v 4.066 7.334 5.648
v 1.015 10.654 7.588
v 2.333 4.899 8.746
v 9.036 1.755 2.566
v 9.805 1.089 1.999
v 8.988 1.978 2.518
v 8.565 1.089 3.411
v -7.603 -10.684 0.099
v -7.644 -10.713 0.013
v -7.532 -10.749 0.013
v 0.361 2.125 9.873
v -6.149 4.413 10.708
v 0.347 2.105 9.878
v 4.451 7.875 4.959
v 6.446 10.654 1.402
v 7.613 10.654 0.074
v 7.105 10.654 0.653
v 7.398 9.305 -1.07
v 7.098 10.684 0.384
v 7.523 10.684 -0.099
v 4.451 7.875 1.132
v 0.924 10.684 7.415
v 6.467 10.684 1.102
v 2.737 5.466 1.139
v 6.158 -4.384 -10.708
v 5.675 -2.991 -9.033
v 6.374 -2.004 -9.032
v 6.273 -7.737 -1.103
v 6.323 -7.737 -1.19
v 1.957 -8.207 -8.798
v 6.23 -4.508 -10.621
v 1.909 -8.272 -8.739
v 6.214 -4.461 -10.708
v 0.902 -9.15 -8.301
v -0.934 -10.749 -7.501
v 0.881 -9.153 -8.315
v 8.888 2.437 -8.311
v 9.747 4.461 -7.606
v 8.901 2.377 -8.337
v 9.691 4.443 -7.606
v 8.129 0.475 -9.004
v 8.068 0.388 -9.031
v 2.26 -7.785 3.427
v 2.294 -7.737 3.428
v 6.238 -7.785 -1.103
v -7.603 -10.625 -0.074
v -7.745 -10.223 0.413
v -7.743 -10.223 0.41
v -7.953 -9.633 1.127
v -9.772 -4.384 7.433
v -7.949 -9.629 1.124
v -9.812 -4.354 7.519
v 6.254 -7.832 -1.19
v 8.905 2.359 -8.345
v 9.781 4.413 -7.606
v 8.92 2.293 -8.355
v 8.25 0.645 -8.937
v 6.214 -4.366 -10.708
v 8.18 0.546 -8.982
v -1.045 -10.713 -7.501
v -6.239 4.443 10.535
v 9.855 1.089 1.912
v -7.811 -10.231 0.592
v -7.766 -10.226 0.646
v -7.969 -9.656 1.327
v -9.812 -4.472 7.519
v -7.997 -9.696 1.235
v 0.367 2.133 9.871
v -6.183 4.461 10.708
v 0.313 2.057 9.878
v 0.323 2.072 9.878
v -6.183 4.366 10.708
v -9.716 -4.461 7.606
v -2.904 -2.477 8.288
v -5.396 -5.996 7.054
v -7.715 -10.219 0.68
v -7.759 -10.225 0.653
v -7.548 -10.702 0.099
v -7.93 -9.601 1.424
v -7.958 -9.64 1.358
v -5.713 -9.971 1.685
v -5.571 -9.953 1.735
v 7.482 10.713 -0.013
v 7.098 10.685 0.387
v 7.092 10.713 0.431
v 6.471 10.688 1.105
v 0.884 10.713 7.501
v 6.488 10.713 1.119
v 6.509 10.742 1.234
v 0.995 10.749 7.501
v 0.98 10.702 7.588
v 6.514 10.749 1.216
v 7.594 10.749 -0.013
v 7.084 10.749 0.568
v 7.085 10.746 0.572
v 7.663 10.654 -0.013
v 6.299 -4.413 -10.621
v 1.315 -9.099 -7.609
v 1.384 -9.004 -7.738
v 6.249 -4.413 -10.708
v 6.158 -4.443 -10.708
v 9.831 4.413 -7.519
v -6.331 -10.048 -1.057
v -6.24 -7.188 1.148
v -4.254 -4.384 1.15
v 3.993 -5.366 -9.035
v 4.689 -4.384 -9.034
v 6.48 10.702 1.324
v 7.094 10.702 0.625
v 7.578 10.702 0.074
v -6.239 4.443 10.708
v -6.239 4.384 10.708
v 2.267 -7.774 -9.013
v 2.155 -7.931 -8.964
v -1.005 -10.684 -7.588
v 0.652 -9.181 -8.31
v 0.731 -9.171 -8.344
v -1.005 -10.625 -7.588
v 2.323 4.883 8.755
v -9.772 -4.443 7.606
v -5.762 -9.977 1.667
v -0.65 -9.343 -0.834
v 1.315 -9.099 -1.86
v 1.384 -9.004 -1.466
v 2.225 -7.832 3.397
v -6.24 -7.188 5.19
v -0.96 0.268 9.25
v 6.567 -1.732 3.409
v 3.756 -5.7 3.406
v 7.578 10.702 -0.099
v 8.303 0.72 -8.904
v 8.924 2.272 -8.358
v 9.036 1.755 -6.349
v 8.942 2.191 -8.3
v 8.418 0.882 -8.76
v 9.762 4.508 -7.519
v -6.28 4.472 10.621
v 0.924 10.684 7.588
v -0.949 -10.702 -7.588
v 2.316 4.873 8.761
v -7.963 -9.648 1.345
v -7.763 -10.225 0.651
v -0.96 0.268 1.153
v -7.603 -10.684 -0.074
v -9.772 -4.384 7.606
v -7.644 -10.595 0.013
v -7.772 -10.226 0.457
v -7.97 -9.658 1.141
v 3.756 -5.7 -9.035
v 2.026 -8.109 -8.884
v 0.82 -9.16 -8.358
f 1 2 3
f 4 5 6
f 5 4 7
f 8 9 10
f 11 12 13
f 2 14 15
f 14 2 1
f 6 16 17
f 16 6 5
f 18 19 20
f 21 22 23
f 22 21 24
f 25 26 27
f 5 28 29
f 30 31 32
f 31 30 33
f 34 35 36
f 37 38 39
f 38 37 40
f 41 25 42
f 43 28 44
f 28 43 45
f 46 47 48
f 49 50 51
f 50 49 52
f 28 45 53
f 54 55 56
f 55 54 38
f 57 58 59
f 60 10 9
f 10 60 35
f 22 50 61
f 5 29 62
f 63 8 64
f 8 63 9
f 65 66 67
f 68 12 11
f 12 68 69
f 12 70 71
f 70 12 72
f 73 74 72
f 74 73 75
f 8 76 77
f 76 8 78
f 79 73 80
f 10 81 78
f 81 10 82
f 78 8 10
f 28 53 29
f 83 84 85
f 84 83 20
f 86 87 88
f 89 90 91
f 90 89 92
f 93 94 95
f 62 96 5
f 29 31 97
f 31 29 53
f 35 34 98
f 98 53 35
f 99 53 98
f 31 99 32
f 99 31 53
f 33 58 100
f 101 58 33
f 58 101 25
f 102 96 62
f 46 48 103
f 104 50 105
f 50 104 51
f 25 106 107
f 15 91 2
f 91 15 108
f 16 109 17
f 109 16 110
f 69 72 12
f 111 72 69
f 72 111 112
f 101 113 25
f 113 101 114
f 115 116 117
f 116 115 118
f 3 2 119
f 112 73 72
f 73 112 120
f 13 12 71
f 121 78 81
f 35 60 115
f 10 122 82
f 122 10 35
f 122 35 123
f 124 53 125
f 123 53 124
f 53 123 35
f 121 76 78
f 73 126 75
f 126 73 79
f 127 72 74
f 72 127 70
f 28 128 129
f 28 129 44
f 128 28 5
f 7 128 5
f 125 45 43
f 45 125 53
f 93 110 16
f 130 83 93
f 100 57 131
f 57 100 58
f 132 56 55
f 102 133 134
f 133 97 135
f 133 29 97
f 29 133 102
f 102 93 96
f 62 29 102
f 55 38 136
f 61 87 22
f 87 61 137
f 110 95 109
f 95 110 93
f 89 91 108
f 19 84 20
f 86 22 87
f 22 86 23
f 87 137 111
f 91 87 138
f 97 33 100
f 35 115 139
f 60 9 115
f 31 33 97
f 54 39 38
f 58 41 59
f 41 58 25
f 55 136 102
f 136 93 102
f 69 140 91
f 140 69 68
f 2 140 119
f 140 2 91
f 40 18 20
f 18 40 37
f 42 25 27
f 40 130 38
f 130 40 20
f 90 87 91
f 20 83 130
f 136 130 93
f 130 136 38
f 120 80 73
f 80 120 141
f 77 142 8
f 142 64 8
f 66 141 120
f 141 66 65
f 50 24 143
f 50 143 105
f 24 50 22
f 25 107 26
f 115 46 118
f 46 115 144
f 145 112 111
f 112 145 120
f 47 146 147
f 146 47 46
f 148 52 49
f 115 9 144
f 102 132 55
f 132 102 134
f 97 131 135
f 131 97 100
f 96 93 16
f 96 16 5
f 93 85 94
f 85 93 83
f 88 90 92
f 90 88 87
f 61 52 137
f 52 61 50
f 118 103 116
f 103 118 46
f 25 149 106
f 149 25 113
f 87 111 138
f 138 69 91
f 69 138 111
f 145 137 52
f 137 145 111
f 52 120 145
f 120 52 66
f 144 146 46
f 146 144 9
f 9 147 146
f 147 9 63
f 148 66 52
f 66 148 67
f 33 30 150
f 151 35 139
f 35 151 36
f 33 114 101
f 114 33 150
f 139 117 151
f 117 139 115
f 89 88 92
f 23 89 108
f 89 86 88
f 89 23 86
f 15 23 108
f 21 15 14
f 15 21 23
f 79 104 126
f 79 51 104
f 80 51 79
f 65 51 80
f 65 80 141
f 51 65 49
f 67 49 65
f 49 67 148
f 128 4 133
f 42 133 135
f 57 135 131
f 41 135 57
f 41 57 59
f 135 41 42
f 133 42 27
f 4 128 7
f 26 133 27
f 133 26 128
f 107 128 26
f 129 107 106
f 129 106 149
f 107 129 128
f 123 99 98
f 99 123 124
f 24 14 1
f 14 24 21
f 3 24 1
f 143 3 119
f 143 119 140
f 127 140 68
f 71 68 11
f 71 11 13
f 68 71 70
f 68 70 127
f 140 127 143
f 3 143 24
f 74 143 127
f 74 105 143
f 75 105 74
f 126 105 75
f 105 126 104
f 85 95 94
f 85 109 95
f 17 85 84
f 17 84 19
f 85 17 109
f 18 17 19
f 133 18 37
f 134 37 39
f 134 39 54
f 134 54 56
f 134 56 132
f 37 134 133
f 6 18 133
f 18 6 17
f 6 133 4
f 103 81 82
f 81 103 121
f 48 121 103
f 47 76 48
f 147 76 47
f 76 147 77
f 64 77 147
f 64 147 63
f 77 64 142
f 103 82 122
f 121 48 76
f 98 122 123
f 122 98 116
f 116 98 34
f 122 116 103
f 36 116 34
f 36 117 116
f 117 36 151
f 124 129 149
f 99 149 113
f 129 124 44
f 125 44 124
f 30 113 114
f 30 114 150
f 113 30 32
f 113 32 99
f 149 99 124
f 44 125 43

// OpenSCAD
// Auto-generated OpenSCAD file

    inner_points = 10*[[-0.5843169179657698, -0.6879231760558433, -0.9476863813058384], [-0.8215331245846192, -1.0182565838404067, -0.03411738499587125], [0.6903670649661048, 1.1119849418432066, 0.03411738499587125], [0.4531508583472553, 0.7816515340586432, 0.9476863813058384], [-0.04323343492736341, 0.07283869886099822, -1.3061135483231257], [-0.6159240181612884, -0.7246566943174167, 0.8994371127319727], [0.4847579585427739, 0.8183850523202166, -0.8994371127319727], [-0.08793262469115103, 0.02088965914180165, 1.3061135483231257], [0.36563737174037947, -0.5700346554462439, -0.6583956206905608], [0.12842116512152985, -0.9003680632308071, 0.25517337561940623], [0.8936287652105167, 0.17551169801297445, -0.251719185099408], [0.6564125585916671, -0.1548217097715889, 0.6618498112105591]];

    outer_points = 10*[[-0.9731118629091229, -0.4413118352277251, 0.7519334728152625], [-0.619892288935397, 0.4413118352277251, 1.0621130803228622], [0.619892288935397, -0.4413118352277251, -1.0621130803228622], [0.9731118629091229, 0.4413118352277251, -0.7519334728152625], [-0.7562957052968324, -1.0654210178425345, 0.0012814349347830545], [0.09645178068618293, 1.0654210178425345, 0.7501212501511937], [-0.09645178068618293, -1.0654210178425345, -0.7501212501511937], [0.7562957052968324, 1.0654210178425345, -0.0012814349347830545], [-0.03757443368860547, -0.7737087789198632, 0.632426191231289], [0.3156451402851202, 0.10891489153558698, 0.9426057987388886], [0.622269490922044, -0.7737087789198632, -0.11897649385468778], [0.9754890648957697, 0.10891489153558698, 0.19120311365291187]];

    // Convex hull for inner set (I)
    module inner_hull() {
        hull() {
            for (p = inner_points) {
                translate(p) sphere(r=0.1);
            }
        }
    }

    // Convex hull for outer set (O) minus inner hull (O \ I)
    module outer_minus_inner() {
        difference() {
            hull() {
                for (p = outer_points) {
                    translate(p) sphere(r=0.1);
                }
            }
            inner_hull(); // Subtract inner hull
        }
    }

    // Convex hull for outer set (O) minus all translated inner hulls
    module outer_minus_AllTranslationInner() {
        difference() {
            hull() {
                for (p = outer_points) {
                    translate(p) sphere(r=0.1);
                }
            }
            hull() {
                translate([0,0,50]) inner_hull();
                translate([0,0,-50]) inner_hull();
            }; // Subtract translated inner hulls
        }
    }

    // Difference between outer_minus_inner and outer_minus_AllTranslationInner
    module outer_minus_inner_diff() {
        difference() {
            // Outer minus inner
            difference() {
                hull() {
                    for (p = outer_points) {
                        translate(p) sphere(r=0.1);
                    }
                }
                inner_hull();
            }

            // Subtract Outer minus AllTranslationInner
            difference() {
                hull() {
                    for (p = outer_points) {
                        translate(p) sphere(r=0.1);
                    }
                }
                hull() {
                    translate([0,0,50]) inner_hull();
                    translate([0,0,-50]) inner_hull();
                };
            }
        }
    }

    // Rendering all with colors applied
    color([0, 1, 0, 1]) outer_minus_AllTranslationInner(); // Opaque green
    
